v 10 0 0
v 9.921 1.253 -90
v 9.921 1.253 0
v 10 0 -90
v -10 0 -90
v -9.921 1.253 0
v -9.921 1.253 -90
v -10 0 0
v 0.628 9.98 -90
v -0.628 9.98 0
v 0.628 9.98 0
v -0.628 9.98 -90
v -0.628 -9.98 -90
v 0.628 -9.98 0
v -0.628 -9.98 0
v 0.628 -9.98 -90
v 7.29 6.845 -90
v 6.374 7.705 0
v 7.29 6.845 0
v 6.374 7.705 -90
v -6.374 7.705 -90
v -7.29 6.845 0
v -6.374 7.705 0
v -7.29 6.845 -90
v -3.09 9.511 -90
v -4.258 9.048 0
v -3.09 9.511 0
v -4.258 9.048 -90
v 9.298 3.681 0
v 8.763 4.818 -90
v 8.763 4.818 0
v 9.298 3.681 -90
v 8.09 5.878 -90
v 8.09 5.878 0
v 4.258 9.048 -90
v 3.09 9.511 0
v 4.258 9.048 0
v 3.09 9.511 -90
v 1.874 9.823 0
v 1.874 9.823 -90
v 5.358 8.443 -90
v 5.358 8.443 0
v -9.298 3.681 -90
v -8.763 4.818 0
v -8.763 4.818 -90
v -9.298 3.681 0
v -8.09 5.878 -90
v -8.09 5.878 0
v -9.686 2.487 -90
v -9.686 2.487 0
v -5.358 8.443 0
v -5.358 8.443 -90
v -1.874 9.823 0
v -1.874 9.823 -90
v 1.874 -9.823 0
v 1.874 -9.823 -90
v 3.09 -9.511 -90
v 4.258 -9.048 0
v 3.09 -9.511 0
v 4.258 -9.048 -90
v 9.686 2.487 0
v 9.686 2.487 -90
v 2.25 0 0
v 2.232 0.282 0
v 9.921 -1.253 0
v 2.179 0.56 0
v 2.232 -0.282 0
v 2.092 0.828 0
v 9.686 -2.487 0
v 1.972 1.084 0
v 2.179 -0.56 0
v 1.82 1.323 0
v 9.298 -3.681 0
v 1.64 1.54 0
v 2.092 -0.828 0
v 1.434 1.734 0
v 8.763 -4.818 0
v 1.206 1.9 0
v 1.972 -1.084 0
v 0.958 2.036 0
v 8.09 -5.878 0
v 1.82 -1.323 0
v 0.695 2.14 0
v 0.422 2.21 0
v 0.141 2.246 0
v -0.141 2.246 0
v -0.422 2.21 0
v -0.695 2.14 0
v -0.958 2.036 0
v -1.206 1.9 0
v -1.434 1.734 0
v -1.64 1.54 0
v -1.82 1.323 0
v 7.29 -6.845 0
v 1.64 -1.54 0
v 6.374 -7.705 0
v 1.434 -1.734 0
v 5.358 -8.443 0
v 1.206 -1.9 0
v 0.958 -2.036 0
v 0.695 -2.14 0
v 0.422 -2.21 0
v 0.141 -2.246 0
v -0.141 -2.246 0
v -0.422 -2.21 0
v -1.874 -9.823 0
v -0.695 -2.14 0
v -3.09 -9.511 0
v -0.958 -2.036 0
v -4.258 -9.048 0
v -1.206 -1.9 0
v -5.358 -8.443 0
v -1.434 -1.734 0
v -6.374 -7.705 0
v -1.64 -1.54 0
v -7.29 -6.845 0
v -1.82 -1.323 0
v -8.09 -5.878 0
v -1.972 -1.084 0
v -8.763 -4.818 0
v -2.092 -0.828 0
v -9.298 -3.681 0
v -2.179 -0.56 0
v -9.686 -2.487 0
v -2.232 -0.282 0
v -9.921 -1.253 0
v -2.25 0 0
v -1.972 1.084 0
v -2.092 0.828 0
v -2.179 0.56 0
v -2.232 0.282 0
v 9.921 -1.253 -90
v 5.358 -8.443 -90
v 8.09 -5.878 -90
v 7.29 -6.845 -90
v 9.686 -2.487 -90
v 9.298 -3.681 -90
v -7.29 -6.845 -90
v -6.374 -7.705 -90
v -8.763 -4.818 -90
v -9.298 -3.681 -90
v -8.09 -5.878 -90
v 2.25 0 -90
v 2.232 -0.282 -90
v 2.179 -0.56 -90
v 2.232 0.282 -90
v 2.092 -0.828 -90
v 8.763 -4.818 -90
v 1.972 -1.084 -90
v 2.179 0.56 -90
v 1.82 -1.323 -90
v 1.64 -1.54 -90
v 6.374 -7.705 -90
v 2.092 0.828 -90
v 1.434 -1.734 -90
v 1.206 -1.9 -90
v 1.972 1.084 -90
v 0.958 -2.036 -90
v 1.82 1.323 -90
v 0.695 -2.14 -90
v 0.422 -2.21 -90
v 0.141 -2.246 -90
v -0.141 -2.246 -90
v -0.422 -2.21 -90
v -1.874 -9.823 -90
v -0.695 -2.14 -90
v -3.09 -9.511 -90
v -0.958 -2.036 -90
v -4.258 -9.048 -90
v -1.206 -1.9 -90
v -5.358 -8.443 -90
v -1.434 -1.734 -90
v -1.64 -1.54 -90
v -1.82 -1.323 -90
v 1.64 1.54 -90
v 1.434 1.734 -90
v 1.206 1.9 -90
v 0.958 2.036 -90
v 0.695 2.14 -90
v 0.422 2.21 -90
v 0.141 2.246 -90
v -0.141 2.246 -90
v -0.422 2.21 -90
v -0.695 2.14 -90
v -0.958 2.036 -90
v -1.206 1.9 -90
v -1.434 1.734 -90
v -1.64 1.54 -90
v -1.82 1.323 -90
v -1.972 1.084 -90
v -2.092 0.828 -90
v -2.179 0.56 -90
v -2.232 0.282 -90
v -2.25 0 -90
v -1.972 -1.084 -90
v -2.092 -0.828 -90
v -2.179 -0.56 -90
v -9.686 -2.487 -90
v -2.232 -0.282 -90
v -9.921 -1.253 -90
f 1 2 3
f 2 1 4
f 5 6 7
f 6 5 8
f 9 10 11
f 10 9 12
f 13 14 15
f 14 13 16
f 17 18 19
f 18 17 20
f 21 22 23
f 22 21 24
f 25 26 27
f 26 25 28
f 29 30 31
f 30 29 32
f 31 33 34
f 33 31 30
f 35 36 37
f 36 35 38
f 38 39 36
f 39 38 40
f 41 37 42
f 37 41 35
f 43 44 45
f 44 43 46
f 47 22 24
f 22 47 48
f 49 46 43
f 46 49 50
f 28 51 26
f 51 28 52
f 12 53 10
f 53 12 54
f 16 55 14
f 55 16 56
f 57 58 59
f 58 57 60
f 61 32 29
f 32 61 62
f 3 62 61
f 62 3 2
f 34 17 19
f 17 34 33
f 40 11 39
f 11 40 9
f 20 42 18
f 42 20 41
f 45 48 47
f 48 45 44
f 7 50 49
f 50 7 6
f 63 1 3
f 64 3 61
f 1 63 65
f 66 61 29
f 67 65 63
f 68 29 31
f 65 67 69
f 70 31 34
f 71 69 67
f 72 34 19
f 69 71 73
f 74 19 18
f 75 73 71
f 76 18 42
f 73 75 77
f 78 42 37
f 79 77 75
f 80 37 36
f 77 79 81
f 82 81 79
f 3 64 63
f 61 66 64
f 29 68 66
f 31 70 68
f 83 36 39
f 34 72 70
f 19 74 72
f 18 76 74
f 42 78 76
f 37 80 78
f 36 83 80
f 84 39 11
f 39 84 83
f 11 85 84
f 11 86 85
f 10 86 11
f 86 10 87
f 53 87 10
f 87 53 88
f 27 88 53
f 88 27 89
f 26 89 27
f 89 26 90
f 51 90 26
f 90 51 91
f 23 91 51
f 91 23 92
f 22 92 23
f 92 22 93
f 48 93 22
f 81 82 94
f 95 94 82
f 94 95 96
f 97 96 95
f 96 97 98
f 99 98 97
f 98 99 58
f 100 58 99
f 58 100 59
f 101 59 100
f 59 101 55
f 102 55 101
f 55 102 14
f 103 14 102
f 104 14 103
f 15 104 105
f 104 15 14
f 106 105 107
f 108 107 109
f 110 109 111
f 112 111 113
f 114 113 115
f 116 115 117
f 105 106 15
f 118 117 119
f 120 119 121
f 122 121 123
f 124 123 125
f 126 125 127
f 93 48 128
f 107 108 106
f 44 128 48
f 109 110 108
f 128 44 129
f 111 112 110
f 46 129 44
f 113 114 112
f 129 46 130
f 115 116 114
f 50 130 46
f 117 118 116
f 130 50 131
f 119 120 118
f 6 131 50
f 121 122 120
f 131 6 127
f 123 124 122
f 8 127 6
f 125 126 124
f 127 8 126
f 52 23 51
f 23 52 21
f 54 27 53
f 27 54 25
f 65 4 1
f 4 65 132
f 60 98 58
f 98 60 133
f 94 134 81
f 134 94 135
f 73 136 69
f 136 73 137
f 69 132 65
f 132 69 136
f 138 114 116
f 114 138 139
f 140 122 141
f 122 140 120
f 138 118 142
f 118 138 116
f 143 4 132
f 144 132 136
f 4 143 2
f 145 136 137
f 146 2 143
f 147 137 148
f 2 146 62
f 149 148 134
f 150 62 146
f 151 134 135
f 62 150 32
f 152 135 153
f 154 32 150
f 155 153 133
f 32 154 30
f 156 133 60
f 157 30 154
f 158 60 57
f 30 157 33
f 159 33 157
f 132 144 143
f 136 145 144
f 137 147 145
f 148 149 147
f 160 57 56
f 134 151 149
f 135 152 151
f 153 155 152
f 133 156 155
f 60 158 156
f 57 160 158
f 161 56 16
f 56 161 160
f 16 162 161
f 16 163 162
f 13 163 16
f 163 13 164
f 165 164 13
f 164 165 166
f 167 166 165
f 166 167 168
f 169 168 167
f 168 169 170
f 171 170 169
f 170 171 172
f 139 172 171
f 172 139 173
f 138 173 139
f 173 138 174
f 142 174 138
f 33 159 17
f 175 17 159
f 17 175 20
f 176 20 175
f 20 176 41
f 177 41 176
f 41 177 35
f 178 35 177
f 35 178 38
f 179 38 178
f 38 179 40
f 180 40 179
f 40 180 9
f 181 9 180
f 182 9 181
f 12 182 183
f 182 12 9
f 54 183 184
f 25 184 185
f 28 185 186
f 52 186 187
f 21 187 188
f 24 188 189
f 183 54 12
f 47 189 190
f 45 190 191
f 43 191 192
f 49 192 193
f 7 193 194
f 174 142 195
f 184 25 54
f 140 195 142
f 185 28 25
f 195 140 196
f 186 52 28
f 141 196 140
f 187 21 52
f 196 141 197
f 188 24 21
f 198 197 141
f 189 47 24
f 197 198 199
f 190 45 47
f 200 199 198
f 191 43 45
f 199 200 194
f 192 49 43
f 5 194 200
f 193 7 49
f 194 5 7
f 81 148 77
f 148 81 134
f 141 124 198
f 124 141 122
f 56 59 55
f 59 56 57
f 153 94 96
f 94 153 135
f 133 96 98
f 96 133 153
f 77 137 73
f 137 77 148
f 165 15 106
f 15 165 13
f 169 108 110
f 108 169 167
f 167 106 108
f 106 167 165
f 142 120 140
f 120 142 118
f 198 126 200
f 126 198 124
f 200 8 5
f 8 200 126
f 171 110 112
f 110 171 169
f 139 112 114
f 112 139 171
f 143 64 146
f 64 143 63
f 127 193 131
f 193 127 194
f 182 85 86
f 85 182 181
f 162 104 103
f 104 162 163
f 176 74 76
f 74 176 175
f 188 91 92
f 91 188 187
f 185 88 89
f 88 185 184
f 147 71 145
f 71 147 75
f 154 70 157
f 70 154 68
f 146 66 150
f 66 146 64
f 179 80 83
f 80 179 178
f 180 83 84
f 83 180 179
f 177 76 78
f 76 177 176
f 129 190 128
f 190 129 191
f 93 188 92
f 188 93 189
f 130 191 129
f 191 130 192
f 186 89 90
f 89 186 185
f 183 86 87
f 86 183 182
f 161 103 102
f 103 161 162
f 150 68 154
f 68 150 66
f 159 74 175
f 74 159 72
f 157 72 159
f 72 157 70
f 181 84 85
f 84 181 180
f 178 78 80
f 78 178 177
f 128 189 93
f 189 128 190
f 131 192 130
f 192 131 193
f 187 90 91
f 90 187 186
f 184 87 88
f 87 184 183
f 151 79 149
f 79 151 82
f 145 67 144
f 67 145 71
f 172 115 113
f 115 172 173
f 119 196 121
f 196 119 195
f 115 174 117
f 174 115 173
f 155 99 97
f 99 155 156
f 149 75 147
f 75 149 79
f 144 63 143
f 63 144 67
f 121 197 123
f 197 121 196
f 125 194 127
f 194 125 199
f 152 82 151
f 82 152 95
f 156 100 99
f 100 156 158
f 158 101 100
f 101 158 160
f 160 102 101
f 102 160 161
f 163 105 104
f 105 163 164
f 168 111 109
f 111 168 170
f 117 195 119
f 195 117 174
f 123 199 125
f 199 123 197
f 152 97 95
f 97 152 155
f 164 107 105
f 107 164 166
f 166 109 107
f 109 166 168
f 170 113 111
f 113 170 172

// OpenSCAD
$fn = 50;


difference() {
	union() {
		translate(v = [0, 0, -90.0000000000]) {
			cylinder(h = 90, r = 10.0000000000);
		}
		cylinder(h = 0, r = 19.0000000000);
	}
	union() {
		#translate(v = [0, 0, -90]) {
			cylinder(h = 90, r = 2.2500000000);
		}
	}
}
